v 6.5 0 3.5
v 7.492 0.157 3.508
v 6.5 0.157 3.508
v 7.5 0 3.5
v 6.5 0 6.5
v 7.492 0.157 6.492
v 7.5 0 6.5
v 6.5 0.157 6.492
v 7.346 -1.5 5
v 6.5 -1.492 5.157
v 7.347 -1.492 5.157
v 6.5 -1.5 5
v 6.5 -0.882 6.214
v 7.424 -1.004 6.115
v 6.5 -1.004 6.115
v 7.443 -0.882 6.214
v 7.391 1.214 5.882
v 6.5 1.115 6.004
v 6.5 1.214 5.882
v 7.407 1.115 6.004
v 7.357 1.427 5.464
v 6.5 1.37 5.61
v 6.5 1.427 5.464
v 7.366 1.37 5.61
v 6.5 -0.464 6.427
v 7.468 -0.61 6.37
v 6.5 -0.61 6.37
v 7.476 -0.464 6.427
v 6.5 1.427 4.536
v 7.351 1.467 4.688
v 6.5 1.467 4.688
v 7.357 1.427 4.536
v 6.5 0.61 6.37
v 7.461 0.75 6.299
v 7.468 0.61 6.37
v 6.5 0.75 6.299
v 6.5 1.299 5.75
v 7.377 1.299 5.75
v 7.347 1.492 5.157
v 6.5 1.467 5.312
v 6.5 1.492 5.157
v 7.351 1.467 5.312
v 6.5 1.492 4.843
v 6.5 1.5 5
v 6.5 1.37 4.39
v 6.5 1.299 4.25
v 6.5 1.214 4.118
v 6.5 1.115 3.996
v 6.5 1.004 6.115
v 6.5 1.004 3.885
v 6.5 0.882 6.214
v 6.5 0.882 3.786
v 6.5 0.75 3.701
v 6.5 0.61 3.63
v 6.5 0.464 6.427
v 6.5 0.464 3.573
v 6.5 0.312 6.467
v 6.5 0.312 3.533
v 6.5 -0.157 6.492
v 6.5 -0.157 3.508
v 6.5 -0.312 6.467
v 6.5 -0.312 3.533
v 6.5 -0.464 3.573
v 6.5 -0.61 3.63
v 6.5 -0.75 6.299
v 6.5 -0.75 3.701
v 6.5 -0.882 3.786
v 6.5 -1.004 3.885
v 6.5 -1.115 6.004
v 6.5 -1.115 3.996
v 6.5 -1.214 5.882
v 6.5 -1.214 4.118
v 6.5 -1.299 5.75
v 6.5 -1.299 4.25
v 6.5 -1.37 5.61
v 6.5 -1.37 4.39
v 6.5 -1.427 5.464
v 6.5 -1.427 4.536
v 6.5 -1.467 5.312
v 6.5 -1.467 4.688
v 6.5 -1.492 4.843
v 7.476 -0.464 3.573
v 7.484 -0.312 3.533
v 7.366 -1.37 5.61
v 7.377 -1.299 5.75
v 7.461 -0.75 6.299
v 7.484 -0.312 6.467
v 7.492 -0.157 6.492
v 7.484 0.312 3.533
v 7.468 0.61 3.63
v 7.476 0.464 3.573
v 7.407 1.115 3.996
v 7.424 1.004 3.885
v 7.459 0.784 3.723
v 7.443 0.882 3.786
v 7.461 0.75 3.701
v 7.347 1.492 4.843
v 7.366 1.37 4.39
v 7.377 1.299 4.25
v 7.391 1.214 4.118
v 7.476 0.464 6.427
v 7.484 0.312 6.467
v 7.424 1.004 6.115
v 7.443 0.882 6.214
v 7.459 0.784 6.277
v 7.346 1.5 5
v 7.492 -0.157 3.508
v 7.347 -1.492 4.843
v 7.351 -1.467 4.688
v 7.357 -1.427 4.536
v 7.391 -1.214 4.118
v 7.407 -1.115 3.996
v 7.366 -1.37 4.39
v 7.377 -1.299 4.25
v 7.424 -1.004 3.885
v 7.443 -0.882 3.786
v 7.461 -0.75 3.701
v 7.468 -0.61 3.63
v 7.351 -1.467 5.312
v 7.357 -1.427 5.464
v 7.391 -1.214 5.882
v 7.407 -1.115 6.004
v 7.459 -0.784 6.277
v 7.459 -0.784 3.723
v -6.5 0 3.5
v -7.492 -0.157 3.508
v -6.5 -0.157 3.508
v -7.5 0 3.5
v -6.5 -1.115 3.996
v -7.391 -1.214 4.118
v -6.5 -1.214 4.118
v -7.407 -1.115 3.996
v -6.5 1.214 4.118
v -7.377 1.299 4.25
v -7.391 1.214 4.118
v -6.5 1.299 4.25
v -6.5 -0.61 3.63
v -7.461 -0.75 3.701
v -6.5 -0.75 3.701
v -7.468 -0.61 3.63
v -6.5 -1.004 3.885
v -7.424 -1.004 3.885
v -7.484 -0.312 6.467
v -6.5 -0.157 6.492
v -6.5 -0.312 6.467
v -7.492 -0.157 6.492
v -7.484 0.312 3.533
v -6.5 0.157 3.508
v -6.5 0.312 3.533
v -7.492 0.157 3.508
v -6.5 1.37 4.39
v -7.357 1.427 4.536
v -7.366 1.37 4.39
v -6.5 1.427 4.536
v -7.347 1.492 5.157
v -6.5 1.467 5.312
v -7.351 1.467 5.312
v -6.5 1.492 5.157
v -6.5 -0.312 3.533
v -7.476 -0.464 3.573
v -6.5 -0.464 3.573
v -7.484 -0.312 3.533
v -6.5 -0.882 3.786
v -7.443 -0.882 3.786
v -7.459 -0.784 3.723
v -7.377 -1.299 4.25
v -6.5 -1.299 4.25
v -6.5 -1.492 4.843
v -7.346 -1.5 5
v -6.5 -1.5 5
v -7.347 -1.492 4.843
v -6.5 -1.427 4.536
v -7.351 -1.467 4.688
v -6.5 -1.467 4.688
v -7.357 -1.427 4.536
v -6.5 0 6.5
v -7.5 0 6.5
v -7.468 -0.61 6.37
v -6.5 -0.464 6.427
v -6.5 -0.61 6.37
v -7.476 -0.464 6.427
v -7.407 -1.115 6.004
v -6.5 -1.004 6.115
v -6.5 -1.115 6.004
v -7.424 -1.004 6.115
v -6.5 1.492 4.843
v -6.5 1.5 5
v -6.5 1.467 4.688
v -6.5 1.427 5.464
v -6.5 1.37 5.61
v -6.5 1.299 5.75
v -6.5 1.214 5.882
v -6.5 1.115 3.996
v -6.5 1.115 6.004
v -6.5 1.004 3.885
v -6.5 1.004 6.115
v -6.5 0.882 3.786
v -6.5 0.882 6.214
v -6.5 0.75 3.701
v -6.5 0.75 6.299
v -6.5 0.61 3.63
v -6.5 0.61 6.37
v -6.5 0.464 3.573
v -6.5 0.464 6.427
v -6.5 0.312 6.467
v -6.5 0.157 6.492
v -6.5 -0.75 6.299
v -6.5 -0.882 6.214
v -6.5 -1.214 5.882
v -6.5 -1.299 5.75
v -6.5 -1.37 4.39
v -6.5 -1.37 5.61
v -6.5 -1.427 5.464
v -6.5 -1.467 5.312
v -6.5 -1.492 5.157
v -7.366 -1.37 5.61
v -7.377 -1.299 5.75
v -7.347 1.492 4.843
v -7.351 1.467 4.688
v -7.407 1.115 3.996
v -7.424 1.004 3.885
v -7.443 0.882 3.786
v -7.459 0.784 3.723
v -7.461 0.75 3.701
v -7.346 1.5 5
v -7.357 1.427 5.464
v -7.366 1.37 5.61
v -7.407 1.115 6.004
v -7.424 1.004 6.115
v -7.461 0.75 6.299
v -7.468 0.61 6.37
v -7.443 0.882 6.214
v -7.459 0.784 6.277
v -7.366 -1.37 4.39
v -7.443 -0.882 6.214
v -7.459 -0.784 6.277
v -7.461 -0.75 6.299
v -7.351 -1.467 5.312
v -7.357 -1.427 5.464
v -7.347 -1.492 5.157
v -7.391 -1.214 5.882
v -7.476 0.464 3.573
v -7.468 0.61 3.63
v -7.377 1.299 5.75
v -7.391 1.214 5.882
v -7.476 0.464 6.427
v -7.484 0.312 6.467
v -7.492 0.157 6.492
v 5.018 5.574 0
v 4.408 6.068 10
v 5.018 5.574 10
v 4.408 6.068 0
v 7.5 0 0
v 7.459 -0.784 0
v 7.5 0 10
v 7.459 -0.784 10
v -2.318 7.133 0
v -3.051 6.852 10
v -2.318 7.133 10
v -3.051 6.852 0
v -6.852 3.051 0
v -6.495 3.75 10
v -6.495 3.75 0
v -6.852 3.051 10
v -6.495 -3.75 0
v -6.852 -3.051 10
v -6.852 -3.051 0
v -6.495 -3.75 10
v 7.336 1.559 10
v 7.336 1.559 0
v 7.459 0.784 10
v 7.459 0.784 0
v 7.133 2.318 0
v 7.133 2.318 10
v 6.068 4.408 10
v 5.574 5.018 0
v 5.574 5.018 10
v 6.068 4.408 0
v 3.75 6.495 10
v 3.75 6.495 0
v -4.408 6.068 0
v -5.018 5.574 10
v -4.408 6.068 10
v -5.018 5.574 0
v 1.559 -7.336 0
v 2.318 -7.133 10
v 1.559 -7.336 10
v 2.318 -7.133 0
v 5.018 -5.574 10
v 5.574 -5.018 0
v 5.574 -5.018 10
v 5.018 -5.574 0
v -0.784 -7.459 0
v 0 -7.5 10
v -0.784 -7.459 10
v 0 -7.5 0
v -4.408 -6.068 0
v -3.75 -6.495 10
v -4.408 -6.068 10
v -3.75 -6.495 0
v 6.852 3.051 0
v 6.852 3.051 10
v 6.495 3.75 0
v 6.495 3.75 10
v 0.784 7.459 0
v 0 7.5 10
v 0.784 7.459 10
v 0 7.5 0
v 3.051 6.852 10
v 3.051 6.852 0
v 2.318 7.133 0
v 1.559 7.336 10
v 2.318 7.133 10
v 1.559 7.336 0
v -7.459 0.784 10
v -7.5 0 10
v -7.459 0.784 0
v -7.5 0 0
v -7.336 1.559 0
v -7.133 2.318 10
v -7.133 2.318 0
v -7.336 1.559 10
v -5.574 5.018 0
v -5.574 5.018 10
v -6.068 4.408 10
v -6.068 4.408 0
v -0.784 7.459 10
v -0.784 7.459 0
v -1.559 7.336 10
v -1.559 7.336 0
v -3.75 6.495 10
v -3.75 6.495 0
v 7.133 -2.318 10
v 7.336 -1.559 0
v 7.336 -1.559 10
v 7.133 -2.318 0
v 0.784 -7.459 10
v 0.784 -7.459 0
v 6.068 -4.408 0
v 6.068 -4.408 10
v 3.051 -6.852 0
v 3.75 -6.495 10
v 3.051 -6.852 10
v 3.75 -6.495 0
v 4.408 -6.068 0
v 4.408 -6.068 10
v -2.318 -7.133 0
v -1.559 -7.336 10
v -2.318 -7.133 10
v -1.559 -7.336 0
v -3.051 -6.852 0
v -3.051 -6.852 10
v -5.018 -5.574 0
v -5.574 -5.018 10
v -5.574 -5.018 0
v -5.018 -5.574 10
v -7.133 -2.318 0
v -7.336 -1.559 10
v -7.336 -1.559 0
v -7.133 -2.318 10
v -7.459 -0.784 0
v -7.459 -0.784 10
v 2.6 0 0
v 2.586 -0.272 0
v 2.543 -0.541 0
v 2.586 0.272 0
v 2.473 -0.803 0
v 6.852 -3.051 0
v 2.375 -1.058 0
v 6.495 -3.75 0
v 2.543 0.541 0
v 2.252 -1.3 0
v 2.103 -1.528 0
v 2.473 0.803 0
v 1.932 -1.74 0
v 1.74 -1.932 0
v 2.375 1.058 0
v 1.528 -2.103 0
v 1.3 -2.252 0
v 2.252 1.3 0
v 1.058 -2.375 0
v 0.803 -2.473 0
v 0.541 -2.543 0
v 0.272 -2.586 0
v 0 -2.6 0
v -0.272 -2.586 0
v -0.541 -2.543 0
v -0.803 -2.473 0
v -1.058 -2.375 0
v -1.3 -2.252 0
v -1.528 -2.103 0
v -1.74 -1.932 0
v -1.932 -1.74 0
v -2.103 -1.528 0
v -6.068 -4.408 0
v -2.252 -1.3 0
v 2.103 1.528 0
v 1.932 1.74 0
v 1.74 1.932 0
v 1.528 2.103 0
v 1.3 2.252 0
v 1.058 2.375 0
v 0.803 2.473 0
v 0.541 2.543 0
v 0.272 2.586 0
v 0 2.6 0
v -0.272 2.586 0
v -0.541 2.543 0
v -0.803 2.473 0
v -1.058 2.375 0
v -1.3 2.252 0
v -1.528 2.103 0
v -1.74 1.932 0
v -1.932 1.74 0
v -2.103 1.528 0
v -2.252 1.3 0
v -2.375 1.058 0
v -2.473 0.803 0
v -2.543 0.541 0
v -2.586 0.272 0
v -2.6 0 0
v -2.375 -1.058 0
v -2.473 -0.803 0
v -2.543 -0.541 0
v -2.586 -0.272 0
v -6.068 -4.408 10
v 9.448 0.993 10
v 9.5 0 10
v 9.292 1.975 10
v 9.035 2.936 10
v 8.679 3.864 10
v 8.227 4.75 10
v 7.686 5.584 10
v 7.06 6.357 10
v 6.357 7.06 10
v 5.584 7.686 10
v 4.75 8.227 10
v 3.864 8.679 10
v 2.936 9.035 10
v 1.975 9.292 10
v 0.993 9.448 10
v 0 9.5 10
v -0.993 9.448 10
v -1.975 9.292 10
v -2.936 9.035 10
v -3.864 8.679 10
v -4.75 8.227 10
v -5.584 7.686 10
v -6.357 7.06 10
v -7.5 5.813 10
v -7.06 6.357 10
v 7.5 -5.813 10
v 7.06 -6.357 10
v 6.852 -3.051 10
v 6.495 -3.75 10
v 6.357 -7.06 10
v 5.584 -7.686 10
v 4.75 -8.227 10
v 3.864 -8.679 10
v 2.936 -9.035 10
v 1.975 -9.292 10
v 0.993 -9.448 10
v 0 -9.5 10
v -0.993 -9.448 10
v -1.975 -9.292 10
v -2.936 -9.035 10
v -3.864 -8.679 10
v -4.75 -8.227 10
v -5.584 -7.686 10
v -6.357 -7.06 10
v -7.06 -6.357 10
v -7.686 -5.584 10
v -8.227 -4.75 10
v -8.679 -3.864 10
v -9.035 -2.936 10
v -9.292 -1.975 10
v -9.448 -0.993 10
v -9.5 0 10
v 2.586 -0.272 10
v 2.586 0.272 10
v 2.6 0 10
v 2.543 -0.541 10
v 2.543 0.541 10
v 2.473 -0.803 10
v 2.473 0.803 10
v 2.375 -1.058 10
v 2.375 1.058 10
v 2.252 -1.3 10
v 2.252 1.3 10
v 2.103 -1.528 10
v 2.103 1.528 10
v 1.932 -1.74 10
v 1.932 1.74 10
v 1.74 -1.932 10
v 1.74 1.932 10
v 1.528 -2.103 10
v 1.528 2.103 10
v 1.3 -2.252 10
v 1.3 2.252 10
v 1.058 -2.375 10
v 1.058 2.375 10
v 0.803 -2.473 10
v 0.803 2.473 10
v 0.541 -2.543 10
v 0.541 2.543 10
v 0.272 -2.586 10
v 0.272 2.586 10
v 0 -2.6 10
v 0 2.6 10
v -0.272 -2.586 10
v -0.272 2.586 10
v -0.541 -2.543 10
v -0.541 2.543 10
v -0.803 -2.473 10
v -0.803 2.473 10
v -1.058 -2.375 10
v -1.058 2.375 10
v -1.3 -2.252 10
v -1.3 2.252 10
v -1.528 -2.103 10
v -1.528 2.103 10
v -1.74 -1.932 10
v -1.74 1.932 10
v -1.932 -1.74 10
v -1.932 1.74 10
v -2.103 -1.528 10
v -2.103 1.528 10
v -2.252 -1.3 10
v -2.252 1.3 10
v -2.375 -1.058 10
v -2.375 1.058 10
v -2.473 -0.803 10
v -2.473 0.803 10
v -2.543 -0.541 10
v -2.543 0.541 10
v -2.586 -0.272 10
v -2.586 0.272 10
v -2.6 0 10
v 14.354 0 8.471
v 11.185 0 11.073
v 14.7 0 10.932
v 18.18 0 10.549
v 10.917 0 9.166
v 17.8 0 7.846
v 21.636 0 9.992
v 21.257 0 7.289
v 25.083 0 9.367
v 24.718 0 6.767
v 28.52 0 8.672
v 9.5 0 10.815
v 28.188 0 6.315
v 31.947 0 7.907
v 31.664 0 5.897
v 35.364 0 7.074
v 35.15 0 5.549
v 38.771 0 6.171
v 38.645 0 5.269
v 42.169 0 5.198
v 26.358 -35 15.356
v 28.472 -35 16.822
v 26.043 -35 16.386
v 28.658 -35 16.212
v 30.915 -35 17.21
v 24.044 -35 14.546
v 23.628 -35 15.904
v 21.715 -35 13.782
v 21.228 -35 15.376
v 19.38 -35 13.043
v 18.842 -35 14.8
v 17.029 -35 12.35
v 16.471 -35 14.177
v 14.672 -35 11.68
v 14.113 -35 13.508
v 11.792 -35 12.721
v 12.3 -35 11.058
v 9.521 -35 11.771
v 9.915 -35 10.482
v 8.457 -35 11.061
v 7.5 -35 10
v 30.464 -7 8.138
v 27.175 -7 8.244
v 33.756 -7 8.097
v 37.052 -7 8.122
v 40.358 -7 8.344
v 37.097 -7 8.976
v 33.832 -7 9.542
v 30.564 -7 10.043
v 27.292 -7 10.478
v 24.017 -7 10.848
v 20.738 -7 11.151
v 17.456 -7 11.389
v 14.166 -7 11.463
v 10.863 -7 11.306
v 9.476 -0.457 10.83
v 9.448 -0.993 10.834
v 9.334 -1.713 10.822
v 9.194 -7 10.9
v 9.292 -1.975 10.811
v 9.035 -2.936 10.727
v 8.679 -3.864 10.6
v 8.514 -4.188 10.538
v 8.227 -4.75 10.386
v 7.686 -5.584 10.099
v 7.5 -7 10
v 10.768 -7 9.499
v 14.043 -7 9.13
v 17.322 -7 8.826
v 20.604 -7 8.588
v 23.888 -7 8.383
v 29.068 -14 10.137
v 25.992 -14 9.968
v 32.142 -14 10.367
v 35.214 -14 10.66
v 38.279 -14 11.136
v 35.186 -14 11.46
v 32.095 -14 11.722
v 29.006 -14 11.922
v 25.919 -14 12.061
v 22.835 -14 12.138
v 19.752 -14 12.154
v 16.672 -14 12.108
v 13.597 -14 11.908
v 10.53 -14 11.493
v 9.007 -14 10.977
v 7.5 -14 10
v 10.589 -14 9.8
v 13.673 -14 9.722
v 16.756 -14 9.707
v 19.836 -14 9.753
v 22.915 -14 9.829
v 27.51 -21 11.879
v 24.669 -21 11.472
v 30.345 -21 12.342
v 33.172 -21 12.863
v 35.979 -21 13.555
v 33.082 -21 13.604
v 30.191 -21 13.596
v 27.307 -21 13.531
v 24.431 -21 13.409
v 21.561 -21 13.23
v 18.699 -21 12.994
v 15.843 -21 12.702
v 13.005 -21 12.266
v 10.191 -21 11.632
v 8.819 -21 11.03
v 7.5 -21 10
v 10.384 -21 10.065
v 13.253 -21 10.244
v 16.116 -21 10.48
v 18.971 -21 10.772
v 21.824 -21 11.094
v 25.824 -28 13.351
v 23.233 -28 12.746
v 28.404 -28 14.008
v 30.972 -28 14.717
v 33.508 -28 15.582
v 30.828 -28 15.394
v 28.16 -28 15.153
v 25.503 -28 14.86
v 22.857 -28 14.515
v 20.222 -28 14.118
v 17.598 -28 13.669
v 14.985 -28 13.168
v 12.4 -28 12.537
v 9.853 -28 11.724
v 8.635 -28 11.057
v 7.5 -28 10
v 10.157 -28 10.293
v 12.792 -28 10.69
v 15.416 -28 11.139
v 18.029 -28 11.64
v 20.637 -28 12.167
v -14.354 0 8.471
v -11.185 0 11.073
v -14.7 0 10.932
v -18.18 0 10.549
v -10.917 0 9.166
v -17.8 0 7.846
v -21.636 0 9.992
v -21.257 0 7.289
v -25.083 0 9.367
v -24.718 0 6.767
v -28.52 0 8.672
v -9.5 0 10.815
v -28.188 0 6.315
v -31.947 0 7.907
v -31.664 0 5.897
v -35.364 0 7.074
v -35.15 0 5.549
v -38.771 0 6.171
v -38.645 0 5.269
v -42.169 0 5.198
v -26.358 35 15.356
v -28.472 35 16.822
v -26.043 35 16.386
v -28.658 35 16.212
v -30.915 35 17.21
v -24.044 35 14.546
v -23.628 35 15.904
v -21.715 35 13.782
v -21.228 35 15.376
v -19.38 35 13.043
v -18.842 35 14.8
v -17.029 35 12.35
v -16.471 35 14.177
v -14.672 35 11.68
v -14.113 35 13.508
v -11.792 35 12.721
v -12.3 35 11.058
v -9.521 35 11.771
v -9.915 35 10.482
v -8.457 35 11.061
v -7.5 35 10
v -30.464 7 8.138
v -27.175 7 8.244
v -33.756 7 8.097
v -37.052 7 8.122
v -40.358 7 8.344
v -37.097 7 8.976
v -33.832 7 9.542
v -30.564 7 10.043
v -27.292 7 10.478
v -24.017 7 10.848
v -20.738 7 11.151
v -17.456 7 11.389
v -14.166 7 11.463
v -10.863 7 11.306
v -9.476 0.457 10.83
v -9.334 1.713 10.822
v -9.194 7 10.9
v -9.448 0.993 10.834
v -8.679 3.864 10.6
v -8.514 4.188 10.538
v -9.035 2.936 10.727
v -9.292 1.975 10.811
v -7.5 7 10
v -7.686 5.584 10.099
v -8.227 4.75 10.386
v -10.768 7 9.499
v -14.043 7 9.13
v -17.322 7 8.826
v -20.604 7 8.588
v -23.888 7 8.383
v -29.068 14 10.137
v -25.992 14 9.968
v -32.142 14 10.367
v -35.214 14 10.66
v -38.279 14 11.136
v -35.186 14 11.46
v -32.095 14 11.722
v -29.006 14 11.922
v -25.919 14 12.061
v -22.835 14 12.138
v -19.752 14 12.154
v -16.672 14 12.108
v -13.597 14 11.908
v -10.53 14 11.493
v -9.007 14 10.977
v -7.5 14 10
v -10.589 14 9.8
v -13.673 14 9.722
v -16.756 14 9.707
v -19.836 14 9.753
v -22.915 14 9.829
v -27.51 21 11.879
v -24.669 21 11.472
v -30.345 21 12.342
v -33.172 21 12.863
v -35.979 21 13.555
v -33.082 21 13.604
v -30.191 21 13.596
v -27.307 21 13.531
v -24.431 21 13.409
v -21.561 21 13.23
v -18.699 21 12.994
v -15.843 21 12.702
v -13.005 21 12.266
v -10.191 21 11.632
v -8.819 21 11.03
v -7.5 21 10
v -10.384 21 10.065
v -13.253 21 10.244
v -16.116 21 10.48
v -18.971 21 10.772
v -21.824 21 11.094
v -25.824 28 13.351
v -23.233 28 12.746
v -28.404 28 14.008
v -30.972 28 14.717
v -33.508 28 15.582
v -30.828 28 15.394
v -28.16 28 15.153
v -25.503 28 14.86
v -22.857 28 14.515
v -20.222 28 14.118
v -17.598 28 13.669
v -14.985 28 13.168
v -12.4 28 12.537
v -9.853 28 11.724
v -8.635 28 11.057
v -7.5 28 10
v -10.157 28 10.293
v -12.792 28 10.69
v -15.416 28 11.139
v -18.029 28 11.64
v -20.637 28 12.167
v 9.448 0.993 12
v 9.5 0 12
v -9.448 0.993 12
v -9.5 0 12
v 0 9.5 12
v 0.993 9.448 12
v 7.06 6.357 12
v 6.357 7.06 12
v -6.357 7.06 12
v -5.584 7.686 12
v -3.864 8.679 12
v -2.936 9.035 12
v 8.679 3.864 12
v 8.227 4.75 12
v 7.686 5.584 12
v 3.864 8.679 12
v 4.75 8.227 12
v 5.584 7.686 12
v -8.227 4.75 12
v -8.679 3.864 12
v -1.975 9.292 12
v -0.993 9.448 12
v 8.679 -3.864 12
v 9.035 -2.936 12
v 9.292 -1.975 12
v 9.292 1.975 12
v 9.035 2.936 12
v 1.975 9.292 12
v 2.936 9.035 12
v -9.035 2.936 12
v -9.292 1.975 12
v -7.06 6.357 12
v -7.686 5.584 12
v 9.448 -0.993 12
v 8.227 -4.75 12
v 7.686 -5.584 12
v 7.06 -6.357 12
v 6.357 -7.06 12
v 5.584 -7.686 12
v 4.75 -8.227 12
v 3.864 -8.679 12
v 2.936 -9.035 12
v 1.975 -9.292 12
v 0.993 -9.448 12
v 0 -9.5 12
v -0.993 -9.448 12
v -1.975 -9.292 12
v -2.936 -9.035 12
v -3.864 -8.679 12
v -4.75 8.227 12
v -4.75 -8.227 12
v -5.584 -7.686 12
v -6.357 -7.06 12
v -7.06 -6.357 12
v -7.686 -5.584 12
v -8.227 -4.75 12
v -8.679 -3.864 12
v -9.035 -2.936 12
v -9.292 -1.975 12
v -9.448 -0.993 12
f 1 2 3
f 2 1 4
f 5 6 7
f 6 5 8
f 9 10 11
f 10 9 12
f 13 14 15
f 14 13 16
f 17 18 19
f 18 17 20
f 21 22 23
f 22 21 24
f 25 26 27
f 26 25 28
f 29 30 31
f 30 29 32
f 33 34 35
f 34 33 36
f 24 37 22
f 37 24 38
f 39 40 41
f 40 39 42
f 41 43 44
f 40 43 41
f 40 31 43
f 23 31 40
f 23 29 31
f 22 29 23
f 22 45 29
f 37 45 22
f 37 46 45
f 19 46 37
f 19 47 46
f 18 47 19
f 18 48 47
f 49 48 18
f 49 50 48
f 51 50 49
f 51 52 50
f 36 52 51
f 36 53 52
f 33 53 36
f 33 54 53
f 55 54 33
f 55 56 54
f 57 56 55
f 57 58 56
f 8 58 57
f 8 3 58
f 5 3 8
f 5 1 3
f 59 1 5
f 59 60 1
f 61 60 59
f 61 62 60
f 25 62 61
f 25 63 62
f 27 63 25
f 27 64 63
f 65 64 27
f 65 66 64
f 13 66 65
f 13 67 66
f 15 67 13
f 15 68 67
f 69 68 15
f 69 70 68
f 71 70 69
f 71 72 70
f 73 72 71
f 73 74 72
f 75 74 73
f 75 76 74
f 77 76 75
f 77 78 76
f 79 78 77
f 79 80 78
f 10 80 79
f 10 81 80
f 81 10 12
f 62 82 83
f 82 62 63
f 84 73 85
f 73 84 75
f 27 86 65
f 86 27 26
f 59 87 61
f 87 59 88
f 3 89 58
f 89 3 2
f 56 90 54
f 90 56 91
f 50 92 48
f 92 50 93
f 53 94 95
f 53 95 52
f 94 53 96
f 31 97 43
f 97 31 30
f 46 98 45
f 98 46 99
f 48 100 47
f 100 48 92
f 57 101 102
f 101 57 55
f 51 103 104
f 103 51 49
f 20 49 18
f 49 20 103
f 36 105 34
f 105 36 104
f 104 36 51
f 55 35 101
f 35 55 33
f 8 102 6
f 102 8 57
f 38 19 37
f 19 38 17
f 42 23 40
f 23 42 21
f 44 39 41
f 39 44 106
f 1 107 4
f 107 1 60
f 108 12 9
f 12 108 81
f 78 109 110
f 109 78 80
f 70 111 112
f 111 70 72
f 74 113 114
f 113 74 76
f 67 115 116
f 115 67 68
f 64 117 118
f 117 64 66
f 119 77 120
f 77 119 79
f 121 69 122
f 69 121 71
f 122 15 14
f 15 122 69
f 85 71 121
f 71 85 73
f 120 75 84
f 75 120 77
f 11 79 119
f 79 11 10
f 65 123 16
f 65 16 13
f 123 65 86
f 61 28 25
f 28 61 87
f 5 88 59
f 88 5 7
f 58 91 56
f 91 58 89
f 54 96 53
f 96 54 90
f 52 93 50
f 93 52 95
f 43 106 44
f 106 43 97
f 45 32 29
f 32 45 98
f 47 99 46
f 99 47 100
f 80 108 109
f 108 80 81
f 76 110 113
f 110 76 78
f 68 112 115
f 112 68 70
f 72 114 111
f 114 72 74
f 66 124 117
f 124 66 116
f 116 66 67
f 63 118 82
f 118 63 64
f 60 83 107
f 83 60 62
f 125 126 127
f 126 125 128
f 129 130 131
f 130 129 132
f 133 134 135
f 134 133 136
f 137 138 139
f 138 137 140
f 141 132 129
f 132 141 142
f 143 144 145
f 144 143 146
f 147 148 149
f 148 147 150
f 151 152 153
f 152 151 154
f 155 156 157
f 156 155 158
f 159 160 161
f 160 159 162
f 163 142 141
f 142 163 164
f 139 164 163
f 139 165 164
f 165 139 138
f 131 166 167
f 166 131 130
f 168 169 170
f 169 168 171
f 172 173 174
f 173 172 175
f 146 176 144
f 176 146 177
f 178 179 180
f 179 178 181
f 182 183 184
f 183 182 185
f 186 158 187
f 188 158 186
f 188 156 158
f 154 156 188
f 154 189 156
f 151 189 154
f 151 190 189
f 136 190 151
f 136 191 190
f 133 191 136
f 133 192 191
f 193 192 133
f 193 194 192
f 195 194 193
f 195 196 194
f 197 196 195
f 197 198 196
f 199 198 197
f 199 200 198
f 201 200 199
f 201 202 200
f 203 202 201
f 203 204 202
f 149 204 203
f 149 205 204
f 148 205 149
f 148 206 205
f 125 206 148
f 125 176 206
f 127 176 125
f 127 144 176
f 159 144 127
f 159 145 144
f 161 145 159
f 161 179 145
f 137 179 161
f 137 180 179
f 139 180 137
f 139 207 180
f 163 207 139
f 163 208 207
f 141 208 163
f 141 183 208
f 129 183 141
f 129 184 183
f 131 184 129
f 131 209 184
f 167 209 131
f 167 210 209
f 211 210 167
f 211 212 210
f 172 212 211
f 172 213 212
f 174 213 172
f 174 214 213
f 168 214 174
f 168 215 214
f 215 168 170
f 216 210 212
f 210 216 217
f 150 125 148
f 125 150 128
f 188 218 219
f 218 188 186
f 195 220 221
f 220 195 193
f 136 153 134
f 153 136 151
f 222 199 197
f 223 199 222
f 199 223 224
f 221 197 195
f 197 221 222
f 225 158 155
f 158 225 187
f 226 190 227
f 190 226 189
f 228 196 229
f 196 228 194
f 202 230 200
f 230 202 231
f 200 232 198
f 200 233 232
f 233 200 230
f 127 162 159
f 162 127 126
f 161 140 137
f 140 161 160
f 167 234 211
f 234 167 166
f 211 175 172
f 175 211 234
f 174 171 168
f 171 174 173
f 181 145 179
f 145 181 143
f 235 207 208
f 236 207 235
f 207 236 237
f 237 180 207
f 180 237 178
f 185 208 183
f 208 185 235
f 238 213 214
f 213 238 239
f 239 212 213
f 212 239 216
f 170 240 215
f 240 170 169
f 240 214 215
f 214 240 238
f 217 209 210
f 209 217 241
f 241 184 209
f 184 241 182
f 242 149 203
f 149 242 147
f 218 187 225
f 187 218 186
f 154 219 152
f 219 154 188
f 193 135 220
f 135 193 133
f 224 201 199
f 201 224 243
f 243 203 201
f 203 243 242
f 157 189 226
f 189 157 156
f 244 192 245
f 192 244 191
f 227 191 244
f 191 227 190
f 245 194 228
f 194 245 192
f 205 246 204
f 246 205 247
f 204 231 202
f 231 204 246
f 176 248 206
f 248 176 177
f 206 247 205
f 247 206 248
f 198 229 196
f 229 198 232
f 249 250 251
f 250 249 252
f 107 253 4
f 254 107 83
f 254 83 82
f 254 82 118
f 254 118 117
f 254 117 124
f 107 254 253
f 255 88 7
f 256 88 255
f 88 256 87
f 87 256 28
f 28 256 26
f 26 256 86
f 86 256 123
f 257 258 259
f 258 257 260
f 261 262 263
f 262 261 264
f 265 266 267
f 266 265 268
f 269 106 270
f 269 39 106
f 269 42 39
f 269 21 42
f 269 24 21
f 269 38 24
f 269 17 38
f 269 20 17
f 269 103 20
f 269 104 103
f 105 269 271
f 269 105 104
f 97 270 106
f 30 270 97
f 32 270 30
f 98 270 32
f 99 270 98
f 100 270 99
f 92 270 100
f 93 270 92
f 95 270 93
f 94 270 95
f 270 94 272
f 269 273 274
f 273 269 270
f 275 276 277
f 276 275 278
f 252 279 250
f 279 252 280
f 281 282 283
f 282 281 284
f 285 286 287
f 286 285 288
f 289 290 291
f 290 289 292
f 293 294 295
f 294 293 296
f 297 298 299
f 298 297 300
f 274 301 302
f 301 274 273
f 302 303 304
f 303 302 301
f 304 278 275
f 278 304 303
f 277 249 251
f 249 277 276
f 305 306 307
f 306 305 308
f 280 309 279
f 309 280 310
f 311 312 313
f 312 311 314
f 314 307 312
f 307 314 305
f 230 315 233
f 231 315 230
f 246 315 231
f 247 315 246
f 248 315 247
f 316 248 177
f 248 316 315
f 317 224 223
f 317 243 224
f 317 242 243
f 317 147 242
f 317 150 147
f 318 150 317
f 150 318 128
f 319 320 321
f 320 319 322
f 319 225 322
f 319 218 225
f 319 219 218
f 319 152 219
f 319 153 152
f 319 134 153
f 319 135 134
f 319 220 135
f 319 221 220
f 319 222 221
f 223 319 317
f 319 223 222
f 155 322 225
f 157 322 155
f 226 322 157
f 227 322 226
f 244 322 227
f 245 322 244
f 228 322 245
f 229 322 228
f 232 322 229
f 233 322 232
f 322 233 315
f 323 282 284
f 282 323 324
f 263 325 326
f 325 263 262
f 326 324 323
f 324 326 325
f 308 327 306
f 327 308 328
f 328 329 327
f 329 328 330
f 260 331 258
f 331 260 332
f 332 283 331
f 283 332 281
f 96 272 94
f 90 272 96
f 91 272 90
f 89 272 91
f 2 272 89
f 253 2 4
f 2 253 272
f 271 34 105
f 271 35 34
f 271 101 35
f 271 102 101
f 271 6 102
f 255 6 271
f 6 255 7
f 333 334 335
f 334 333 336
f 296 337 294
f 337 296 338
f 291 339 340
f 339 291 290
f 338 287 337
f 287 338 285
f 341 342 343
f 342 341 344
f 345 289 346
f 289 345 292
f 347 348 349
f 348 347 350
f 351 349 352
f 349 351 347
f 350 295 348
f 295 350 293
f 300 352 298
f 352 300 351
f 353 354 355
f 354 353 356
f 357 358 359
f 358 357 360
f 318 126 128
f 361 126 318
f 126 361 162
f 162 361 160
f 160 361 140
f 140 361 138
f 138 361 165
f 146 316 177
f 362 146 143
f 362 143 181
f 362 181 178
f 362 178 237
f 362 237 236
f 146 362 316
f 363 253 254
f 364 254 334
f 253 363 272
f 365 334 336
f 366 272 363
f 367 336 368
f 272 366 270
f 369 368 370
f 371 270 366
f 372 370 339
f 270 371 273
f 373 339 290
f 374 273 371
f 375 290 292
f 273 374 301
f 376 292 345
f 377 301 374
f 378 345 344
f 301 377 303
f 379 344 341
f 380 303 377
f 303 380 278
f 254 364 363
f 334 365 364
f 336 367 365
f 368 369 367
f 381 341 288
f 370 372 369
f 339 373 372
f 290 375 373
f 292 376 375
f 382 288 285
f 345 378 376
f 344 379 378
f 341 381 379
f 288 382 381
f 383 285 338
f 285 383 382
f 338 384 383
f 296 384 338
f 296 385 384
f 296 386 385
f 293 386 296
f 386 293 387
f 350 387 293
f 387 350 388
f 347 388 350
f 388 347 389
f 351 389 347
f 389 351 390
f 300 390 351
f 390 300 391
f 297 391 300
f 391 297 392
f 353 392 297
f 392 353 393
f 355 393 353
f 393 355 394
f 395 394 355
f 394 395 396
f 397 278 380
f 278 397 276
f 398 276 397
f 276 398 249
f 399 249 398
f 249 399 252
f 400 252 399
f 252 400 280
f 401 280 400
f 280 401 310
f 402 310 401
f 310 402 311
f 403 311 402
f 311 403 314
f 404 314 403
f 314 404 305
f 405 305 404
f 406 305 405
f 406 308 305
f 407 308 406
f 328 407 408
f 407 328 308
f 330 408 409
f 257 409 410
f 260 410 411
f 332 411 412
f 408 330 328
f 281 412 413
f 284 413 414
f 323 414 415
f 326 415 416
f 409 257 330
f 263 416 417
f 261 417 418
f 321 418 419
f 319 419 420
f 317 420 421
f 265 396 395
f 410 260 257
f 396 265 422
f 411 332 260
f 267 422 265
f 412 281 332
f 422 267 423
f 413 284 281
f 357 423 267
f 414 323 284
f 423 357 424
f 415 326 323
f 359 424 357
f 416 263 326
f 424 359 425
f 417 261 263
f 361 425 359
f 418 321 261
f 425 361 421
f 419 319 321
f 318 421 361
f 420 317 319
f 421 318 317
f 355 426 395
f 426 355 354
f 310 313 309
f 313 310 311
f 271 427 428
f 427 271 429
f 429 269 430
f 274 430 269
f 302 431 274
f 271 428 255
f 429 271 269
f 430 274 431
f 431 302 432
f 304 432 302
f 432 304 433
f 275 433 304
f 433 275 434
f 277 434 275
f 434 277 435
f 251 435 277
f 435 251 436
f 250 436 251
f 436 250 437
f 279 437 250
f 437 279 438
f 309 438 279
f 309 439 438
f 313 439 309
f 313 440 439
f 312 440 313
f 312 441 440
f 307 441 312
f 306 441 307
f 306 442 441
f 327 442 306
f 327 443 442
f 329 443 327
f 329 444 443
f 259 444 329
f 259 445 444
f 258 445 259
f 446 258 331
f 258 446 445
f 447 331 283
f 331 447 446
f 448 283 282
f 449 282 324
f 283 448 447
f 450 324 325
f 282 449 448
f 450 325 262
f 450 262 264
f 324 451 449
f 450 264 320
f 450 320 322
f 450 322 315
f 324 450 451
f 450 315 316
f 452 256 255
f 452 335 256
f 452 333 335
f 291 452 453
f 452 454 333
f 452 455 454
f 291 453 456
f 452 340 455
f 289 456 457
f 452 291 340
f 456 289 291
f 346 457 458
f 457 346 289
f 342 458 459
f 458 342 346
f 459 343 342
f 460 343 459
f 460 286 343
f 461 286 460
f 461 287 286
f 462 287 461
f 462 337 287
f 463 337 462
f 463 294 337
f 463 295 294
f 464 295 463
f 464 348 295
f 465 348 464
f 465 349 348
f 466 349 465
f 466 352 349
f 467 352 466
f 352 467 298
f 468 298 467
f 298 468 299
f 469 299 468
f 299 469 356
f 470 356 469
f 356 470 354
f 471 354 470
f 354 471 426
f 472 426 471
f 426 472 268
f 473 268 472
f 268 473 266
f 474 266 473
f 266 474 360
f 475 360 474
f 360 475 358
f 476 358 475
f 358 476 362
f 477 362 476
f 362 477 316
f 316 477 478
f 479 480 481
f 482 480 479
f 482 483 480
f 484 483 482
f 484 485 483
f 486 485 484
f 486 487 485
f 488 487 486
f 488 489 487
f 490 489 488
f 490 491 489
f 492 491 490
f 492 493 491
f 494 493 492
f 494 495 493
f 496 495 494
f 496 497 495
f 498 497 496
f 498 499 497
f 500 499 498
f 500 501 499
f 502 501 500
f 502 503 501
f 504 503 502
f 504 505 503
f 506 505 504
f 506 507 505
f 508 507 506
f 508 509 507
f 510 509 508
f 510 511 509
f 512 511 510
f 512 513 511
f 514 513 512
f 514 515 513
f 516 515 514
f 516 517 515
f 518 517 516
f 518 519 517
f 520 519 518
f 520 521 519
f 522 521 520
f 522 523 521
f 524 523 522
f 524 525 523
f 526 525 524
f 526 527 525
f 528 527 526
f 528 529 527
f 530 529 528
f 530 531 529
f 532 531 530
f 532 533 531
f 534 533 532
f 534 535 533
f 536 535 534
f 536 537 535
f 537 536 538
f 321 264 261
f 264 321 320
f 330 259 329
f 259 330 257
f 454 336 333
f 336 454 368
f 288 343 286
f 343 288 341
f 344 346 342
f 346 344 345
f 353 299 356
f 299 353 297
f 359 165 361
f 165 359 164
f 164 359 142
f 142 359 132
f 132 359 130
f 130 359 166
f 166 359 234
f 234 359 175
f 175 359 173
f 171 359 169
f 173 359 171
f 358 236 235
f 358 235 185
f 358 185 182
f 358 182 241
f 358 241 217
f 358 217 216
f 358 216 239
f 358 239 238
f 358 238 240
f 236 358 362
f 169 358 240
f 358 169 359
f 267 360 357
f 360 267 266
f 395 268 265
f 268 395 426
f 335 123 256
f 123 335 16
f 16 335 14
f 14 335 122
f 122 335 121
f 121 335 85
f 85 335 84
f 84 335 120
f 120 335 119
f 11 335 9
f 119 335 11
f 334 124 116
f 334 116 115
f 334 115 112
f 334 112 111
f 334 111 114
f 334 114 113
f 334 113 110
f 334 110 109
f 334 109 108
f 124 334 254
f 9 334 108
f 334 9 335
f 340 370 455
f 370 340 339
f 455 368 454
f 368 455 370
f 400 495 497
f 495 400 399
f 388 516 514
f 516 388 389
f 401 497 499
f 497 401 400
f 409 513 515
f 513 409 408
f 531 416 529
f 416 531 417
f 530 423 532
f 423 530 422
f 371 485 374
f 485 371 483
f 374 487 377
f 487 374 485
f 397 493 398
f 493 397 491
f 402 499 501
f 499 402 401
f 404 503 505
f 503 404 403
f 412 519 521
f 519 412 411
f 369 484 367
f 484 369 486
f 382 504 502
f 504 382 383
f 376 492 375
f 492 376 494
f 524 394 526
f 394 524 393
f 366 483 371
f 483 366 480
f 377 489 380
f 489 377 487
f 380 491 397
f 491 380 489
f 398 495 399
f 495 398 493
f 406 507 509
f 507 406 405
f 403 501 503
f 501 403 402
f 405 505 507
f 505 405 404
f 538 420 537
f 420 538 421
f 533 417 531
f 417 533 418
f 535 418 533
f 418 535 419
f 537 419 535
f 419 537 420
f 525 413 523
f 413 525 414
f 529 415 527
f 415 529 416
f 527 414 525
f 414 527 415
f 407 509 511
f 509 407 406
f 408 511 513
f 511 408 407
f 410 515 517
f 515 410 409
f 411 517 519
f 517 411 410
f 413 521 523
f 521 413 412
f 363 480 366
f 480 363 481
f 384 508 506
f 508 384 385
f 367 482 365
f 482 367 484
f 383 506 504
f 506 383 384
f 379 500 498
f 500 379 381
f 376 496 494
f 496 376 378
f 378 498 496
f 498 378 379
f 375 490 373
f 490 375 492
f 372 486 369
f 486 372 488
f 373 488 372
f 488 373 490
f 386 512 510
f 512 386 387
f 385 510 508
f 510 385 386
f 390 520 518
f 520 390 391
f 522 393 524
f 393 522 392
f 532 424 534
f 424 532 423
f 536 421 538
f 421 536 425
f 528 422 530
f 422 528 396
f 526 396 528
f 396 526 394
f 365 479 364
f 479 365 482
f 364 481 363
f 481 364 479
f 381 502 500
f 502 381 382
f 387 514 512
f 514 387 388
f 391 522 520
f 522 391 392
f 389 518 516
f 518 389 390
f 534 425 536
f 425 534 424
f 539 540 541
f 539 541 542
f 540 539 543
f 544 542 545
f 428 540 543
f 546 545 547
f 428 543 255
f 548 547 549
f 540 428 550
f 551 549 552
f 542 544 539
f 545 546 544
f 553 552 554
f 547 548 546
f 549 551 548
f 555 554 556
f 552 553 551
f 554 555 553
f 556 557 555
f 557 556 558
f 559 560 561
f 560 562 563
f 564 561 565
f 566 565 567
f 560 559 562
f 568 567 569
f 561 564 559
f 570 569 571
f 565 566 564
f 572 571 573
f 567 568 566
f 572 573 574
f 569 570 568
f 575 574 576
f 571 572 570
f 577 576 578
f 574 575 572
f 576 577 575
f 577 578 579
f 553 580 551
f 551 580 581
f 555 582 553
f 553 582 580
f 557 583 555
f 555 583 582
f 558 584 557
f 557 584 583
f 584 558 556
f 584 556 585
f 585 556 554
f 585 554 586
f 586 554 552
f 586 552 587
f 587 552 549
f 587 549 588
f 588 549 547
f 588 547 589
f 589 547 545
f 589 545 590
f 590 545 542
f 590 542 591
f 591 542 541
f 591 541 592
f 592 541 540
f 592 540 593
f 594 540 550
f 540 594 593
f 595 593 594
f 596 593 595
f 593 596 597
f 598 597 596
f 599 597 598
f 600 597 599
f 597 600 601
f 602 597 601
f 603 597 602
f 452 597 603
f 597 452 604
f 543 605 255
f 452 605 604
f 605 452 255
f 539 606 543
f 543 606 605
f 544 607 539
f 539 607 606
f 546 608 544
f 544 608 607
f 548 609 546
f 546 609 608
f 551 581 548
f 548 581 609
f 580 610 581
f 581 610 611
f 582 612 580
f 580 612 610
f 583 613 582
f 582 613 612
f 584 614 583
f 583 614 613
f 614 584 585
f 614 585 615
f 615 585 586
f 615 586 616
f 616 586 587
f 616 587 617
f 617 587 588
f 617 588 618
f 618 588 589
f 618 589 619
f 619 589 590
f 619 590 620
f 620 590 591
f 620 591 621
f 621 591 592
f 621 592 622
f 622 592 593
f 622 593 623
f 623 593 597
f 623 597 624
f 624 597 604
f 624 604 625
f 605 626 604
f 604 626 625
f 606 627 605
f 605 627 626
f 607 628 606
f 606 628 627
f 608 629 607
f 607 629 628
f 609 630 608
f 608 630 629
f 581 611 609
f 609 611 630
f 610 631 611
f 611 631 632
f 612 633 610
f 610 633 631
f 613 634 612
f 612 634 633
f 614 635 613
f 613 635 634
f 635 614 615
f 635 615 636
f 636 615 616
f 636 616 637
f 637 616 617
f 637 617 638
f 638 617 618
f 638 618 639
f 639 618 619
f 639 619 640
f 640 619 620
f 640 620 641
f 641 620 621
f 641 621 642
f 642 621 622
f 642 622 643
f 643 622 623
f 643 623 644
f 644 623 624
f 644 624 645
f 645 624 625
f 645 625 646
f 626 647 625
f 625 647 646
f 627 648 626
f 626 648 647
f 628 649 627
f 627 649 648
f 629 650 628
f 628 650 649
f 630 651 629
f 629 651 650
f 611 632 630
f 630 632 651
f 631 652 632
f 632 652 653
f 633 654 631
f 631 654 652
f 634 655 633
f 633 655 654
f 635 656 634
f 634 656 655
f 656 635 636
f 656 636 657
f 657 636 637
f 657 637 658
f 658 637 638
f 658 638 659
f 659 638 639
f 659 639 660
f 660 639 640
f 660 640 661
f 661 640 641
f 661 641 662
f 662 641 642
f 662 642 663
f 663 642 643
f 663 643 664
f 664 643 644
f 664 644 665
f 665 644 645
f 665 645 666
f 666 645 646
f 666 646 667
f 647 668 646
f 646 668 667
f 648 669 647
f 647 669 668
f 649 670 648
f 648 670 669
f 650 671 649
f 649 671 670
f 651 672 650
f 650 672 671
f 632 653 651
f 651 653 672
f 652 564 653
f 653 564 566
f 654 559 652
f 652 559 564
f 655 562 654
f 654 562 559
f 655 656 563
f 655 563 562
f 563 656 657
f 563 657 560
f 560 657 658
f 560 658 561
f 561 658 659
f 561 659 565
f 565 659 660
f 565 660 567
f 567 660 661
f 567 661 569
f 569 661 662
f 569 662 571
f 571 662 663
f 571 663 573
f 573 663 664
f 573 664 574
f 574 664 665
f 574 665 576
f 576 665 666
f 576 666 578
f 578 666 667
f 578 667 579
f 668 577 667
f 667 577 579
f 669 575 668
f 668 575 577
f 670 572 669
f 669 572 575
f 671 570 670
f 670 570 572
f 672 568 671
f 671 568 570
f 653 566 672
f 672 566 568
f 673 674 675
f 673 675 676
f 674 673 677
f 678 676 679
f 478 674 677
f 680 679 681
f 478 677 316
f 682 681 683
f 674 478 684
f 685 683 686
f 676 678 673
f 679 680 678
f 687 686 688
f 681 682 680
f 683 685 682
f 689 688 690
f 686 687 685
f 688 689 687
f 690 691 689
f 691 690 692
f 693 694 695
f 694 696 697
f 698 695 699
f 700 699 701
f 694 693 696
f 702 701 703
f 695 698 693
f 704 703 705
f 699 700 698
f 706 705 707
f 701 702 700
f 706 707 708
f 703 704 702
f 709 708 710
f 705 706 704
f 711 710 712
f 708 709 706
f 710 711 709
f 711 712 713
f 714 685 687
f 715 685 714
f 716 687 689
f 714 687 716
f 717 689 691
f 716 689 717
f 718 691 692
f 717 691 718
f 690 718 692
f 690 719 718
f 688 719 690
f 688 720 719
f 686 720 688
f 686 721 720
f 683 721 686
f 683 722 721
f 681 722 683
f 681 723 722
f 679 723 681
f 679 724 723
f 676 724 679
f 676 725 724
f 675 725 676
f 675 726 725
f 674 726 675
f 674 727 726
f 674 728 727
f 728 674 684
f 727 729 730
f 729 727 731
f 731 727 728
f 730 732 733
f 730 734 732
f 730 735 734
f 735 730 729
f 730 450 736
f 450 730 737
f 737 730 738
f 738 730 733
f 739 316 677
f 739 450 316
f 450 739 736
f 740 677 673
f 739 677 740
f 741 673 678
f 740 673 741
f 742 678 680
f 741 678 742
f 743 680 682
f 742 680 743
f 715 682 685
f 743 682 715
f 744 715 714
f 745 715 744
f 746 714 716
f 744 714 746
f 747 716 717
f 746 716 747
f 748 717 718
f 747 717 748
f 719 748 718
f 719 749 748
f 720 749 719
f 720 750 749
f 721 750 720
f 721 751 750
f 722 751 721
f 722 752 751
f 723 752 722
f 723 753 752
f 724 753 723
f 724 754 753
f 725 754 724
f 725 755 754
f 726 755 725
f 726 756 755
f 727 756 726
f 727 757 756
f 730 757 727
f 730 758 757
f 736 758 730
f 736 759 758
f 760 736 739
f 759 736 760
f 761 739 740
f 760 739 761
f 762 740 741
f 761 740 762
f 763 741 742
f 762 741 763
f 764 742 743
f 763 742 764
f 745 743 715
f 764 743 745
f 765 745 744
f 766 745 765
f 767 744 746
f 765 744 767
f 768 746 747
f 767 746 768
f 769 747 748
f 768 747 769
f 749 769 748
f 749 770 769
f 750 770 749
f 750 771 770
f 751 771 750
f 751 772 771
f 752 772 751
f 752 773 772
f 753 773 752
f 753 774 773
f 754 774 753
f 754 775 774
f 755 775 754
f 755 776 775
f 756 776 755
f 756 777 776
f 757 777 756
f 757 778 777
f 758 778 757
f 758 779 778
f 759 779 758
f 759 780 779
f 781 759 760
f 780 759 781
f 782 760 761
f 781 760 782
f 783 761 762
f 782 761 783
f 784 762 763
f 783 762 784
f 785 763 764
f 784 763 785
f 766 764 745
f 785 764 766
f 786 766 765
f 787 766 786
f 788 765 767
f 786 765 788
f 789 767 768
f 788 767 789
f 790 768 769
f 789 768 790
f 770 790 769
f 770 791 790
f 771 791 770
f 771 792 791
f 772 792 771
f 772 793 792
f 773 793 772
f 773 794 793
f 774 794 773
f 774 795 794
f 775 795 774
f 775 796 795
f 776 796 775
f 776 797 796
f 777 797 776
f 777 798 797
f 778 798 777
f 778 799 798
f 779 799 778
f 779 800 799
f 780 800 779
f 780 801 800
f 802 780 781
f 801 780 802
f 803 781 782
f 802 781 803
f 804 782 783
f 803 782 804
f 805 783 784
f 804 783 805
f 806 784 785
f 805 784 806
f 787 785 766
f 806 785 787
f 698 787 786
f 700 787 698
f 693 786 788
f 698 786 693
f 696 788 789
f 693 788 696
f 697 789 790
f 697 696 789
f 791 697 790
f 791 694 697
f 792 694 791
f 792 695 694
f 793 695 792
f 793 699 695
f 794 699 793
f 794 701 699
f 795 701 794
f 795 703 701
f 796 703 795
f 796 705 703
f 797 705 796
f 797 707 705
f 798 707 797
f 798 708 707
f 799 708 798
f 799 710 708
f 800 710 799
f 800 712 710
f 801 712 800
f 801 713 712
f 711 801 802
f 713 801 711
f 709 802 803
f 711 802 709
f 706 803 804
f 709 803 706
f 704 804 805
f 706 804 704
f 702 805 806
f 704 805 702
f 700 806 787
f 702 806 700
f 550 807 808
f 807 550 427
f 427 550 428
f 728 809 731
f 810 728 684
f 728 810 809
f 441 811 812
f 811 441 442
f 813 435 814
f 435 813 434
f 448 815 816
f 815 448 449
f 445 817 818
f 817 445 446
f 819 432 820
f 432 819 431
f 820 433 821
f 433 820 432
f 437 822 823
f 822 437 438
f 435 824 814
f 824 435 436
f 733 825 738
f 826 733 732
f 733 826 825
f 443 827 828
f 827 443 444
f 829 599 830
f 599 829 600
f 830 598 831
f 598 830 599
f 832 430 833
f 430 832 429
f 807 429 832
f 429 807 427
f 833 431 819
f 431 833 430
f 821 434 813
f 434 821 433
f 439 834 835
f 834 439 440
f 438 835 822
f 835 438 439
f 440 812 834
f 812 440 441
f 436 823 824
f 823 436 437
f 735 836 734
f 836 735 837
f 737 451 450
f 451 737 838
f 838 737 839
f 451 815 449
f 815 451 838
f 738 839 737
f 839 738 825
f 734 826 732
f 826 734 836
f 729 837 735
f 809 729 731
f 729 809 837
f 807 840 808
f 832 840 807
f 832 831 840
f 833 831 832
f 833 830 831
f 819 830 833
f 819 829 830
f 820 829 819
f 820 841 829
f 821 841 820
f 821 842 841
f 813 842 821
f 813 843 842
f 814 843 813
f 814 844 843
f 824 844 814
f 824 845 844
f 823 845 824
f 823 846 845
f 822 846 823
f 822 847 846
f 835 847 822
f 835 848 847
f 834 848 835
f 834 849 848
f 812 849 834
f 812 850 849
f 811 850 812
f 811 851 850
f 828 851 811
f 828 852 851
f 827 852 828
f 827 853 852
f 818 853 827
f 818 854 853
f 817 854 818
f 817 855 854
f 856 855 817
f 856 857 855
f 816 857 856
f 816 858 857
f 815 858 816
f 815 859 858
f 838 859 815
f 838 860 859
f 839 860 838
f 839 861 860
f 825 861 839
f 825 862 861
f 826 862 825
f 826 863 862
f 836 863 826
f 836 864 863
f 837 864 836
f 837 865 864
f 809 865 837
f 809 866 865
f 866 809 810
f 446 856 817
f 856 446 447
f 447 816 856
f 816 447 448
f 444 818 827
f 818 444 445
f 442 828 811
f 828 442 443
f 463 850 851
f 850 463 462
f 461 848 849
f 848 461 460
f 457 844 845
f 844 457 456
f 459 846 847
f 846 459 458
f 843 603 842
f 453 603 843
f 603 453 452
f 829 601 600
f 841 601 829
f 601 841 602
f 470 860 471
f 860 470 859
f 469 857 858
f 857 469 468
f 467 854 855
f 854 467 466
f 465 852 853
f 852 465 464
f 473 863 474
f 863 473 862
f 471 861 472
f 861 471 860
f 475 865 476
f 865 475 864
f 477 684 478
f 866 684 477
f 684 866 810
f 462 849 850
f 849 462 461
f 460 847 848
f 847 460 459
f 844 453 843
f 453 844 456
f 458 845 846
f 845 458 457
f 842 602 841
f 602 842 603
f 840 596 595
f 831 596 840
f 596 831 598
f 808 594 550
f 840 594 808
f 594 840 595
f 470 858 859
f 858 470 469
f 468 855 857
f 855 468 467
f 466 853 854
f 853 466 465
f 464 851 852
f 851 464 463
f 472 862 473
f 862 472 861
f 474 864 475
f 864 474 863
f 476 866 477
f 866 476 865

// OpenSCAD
/*
 * COMPLETE MOTOR + IMPELLER ASSEMBLY
 * For CFD fluid testing and visualization
 * 
 * This model includes:
 *   - Brushless motor (2204-2206 size)
 *   - Motor shaft (5mm)
 *   - Impeller hub
 *   - 3 impeller variants (bladeless, AI-blades, hybrid)
 *   - Mounting plate
 * 
 * Usage:
 *   - Render full assembly: F6
 *   - Export for CFD: Set EXPORT_MODE = "impeller_only"
 *   - Change design: Set IMPELLER_TYPE = "bladeless" | "bladed" | "hybrid"
 */

// ============================================================================
// CONFIGURATION PARAMETERS (AI-Optimizable)
// ============================================================================

// General Settings
$fn = 60;  // Resolution for CFD export (increase to 100 for final)

// Export Mode
EXPORT_MODE = "impeller_only";  // Options: "full_assembly", "impeller_only", "motor_only"

// Impeller Type
IMPELLER_TYPE = "bladed";  // Options: "bladeless", "bladed", "hybrid"

// Motor Specifications (2204-2206 brushless)
MOTOR_DIAMETER = 28;         // mm
MOTOR_HEIGHT = 25;           // mm
MOTOR_SHAFT_DIAMETER = 5;    // mm (standard)
MOTOR_SHAFT_LENGTH = 15;     // mm (extends above motor)
MOTOR_MOUNT_PATTERN = 16;    // mm (16x16 or 19x19 common)
MOTOR_SCREW_DIAMETER = 3;    // M3 screws

// Impeller Parameters - BLADELESS
BLADELESS_OUTER_DIAMETER = 90;    // mm
BLADELESS_AIR_GAP = 0.8;          // mm (optimize: 0.6-1.2)
BLADELESS_THROAT_RATIO = 0.72;    // (optimize: 0.65-0.80)
BLADELESS_EXPANSION_ANGLE = 18;   // degrees (optimize: 12-25)
BLADELESS_RING_THICKNESS = 3;     // mm (optimize: 2-4)
BLADELESS_HEIGHT = 24;            // mm

// Impeller Parameters - BLADED
BLADED_DIAMETER = 85;
BLADED_HUB_DIAMETER = 15;         // mm (optimize: 12-20)
BLADED_BLADE_COUNT = 2;
BLADED_ROOT_CHORD = 35;
BLADED_TIP_CHORD_RATIO = 0.7;    // (optimize: 0.6-0.8)
BLADED_BLADE_THICKNESS = 2;       // mm (optimize: 1.5-3)
BLADED_BLADE_TWIST = -25;
BLADED_ATTACK_ANGLE = -8;
BLADED_BLADE_HEIGHT = 12;         // mm (optimize: 10-15)

// Hub Parameters
HUB_DIAMETER = 15;
HUB_HEIGHT = 10;
HUB_SET_SCREW_DIAMETER = 3;  // M3 set screw

// Mounting Plate
PLATE_SIZE = 50;
PLATE_THICKNESS = 3;

// ============================================================================
// MOTOR MODEL
// ============================================================================

module brushless_motor_2204() {
    color("DarkSlateGray") {
        // Motor can (bell)
        difference() {
            cylinder(h=MOTOR_HEIGHT, d=MOTOR_DIAMETER);
            
            // Hollow inside (weight reduction visualization)
            translate([0, 0, -0.5])
                cylinder(h=MOTOR_HEIGHT - 5, d=MOTOR_DIAMETER - 4);
            
            // Mounting holes
            for(i = [0:3]) {
                rotate([0, 0, i * 90])
                    translate([MOTOR_MOUNT_PATTERN/2, 0, MOTOR_HEIGHT/2])
                        rotate([90, 0, 0])
                            cylinder(h=MOTOR_DIAMETER, d=MOTOR_SCREW_DIAMETER, center=true);
            }
        }
        
        // Motor base
        translate([0, 0, -3])
            cylinder(h=3, d=MOTOR_DIAMETER - 2);
    }
    
    // Motor shaft
    color("Silver")
        translate([0, 0, MOTOR_HEIGHT])
            cylinder(h=MOTOR_SHAFT_LENGTH, d=MOTOR_SHAFT_DIAMETER);
    
    // Shaft tip (for hub attachment)
    color("Silver")
        translate([0, 0, MOTOR_HEIGHT + MOTOR_SHAFT_LENGTH])
            cylinder(h=2, d=MOTOR_SHAFT_DIAMETER - 0.5);
}

// ============================================================================
// IMPELLER HUB
// ============================================================================

module impeller_hub() {
    color("Gray")
    difference() {
        // Hub body
        cylinder(h=HUB_HEIGHT, d=HUB_DIAMETER);
        
        // Shaft hole (5mm + 0.2mm clearance)
        translate([0, 0, -0.5])
            cylinder(h=HUB_HEIGHT + 1, d=MOTOR_SHAFT_DIAMETER + 0.2);
        
        // Set screw holes (2x for balance)
        for(i = [0:1]) {
            rotate([0, 0, i * 180])
                translate([HUB_DIAMETER/2 - 1, 0, HUB_HEIGHT/2])
                    rotate([0, 90, 0])
                        cylinder(h=5, d=HUB_SET_SCREW_DIAMETER);
        }
    }
}

// ============================================================================
// BLADELESS IMPELLER (Dyson-style)
// ============================================================================

module bladeless_impeller() {
    outer_r = BLADELESS_OUTER_DIAMETER / 2;
    throat_r = outer_r * BLADELESS_THROAT_RATIO;
    gap = BLADELESS_AIR_GAP;
    
    color("SkyBlue", 0.7)
    difference() {
        // Outer ring
        rotate_extrude()
            translate([outer_r - BLADELESS_RING_THICKNESS/2, BLADELESS_HEIGHT/2, 0])
                circle(d=BLADELESS_RING_THICKNESS + BLADELESS_HEIGHT);
        
        // Inner air gap (critical for Coanda effect)
        rotate_extrude()
            translate([outer_r - gap - BLADELESS_RING_THICKNESS/2, BLADELESS_HEIGHT/2, 0])
                circle(d=BLADELESS_RING_THICKNESS + BLADELESS_HEIGHT - 2*gap);
    }
    
    // Base plate (connects to hub)
    color("SkyBlue", 0.7)
    translate([0, 0, -2])
        difference() {
            cylinder(h=2, d=outer_r * 2);
            translate([0, 0, -0.5])
                cylinder(h=3, d=HUB_DIAMETER + 1);
        }
    
    // Air inlet (bell-shaped for smooth flow)
    color("SkyBlue", 0.7)
    translate([0, 0, -2]) {
        difference() {
            cylinder(h=15, d1=throat_r * 2, d2=outer_r * 1.8);
            translate([0, 0, -0.5])
                cylinder(h=16, d1=throat_r * 2 - 3, d2=outer_r * 1.8 - 3);
        }
    }
}

// ============================================================================
// AI-OPTIMIZED BLADED IMPELLER (NACA 2412 profile)
// ============================================================================

module naca_2412_blade(chord, height, twist_angle, attack_angle) {
    // Simplified NACA 2412 airfoil profile
    // Using parametric approximation for 3D printing
    
    color("LightSteelBlue", 0.8)
    linear_extrude(height=height, twist=twist_angle, scale=BLADED_TIP_CHORD_RATIO) {
        rotate([0, 0, attack_angle])
        polygon([
            // Upper surface (cambered)
            [0, 0],
            [chord * 0.05, chord * 0.03],
            [chord * 0.1, chord * 0.045],
            [chord * 0.2, chord * 0.055],
            [chord * 0.3, chord * 0.058],
            [chord * 0.4, chord * 0.056],
            [chord * 0.5, chord * 0.052],
            [chord * 0.6, chord * 0.046],
            [chord * 0.7, chord * 0.038],
            [chord * 0.8, chord * 0.028],
            [chord * 0.9, chord * 0.016],
            [chord * 1.0, chord * 0.002],
            // Lower surface (less cambered)
            [chord * 0.9, -chord * 0.010],
            [chord * 0.8, -chord * 0.016],
            [chord * 0.7, -chord * 0.020],
            [chord * 0.6, -chord * 0.022],
            [chord * 0.5, -chord * 0.023],
            [chord * 0.4, -chord * 0.022],
            [chord * 0.3, -chord * 0.020],
            [chord * 0.2, -chord * 0.016],
            [chord * 0.1, -chord * 0.010],
            [chord * 0.05, -chord * 0.005],
        ]);
    }
}

module bladed_impeller() {
    // Blades
    for(i = [0 : BLADED_BLADE_COUNT - 1]) {
        rotate([0, 0, i * (360 / BLADED_BLADE_COUNT)])
            translate([BLADED_HUB_DIAMETER/2, 0, 0])
                rotate([90, 0, 0])
                    naca_2412_blade(
                        BLADED_ROOT_CHORD, 
                        (BLADED_DIAMETER - BLADED_HUB_DIAMETER) / 2,
                        BLADED_BLADE_TWIST,
                        BLADED_ATTACK_ANGLE
                    );
    }
    
    // Hub disk (connects blades)
    color("LightSteelBlue", 0.8)
    cylinder(h=2, d=BLADED_HUB_DIAMETER + 4);
}

// ============================================================================
// HYBRID IMPELLER (Blades inside bladeless ring)
// ============================================================================

module hybrid_impeller() {
    // Outer bladeless ring
    bladeless_impeller();
    
    // Inner bladed impeller (scaled down to fit)
    scale([0.85, 0.85, 1])
        bladed_impeller();
}

// ============================================================================
// MOUNTING PLATE
// ============================================================================

module mounting_plate() {
    color("DimGray")
    difference() {
        // Base plate
        translate([-PLATE_SIZE/2, -PLATE_SIZE/2, 0])
            cube([PLATE_SIZE, PLATE_SIZE, PLATE_THICKNESS]);
        
        // Center hole for motor shaft
        translate([0, 0, -0.5])
            cylinder(h=PLATE_THICKNESS + 1, d=MOTOR_DIAMETER + 2);
        
        // Motor mounting holes
        for(i = [0:3]) {
            rotate([0, 0, i * 90])
                translate([MOTOR_MOUNT_PATTERN/2, 0, -0.5])
                    cylinder(h=PLATE_THICKNESS + 1, d=MOTOR_SCREW_DIAMETER);
        }
    }
}

// ============================================================================
// COMPLETE ASSEMBLY
// ============================================================================

module complete_assembly() {
    // Mounting plate (bottom)
    translate([0, 0, -PLATE_THICKNESS])
        mounting_plate();
    
    // Motor
    translate([0, 0, 0])
        brushless_motor_2204();
    
    // Hub (on shaft)
    translate([0, 0, MOTOR_HEIGHT + MOTOR_SHAFT_LENGTH - 2])
        impeller_hub();
    
    // Impeller (on hub)
    translate([0, 0, MOTOR_HEIGHT + MOTOR_SHAFT_LENGTH + HUB_HEIGHT]) {
        if (IMPELLER_TYPE == "bladeless") {
            bladeless_impeller();
        } else if (IMPELLER_TYPE == "bladed") {
            bladed_impeller();
        } else if (IMPELLER_TYPE == "hybrid") {
            hybrid_impeller();
        }
    }
}

// ============================================================================
// RENDER BASED ON EXPORT MODE
// ============================================================================

if (EXPORT_MODE == "full_assembly") {
    complete_assembly();
} 
else if (EXPORT_MODE == "impeller_only") {
    // For CFD testing - impeller + hub only
    impeller_hub();
    translate([0, 0, HUB_HEIGHT]) {
        if (IMPELLER_TYPE == "bladeless") {
            bladeless_impeller();
        } else if (IMPELLER_TYPE == "bladed") {
            bladed_impeller();
        } else if (IMPELLER_TYPE == "hybrid") {
            hybrid_impeller();
        }
    }
}
else if (EXPORT_MODE == "motor_only") {
    brushless_motor_2204();
}

// ============================================================================
// ANNOTATIONS FOR VISUALIZATION
// ============================================================================

// Uncomment to show dimensions
/*
color("Red", 0.3)
translate([BLADED_DIAMETER/2 + 10, 0, 20])
    text(str("Ø", BLADED_DIAMETER, "mm"), size=5, halign="left");

color("Green", 0.3)
translate([0, BLADED_DIAMETER/2 + 10, 20])
    text(str(BLADED_BLADE_COUNT, " blades"), size=5, halign="center");
*/

// ============================================================================
// EXPORT NOTES
// ============================================================================

/*
 * TO EXPORT FOR CFD TESTING:
 * 
 * 1. Set EXPORT_MODE = "impeller_only"
 * 2. Set IMPELLER_TYPE = "bladeless" (or "bladed" or "hybrid")
 * 3. Press F6 to render
 * 4. File → Export → Export as STL
 * 5. Use filename: impeller_bladeless_fn60.stl
 * 
 * FOR OPTIMIZATION:
 * - Modify parameters at top (marked with "optimize:")
 * - Re-render and export
 * - Upload to SimScale for CFD
 * - Compare results
 * 
 * RECOMMENDED CFD SETTINGS:
 * - Solver: k-omega SST
 * - RPM: 5000, 7000, 9000
 * - Mesh: 3-5M cells
 * - Boundary: Rotating zone on impeller
 */
